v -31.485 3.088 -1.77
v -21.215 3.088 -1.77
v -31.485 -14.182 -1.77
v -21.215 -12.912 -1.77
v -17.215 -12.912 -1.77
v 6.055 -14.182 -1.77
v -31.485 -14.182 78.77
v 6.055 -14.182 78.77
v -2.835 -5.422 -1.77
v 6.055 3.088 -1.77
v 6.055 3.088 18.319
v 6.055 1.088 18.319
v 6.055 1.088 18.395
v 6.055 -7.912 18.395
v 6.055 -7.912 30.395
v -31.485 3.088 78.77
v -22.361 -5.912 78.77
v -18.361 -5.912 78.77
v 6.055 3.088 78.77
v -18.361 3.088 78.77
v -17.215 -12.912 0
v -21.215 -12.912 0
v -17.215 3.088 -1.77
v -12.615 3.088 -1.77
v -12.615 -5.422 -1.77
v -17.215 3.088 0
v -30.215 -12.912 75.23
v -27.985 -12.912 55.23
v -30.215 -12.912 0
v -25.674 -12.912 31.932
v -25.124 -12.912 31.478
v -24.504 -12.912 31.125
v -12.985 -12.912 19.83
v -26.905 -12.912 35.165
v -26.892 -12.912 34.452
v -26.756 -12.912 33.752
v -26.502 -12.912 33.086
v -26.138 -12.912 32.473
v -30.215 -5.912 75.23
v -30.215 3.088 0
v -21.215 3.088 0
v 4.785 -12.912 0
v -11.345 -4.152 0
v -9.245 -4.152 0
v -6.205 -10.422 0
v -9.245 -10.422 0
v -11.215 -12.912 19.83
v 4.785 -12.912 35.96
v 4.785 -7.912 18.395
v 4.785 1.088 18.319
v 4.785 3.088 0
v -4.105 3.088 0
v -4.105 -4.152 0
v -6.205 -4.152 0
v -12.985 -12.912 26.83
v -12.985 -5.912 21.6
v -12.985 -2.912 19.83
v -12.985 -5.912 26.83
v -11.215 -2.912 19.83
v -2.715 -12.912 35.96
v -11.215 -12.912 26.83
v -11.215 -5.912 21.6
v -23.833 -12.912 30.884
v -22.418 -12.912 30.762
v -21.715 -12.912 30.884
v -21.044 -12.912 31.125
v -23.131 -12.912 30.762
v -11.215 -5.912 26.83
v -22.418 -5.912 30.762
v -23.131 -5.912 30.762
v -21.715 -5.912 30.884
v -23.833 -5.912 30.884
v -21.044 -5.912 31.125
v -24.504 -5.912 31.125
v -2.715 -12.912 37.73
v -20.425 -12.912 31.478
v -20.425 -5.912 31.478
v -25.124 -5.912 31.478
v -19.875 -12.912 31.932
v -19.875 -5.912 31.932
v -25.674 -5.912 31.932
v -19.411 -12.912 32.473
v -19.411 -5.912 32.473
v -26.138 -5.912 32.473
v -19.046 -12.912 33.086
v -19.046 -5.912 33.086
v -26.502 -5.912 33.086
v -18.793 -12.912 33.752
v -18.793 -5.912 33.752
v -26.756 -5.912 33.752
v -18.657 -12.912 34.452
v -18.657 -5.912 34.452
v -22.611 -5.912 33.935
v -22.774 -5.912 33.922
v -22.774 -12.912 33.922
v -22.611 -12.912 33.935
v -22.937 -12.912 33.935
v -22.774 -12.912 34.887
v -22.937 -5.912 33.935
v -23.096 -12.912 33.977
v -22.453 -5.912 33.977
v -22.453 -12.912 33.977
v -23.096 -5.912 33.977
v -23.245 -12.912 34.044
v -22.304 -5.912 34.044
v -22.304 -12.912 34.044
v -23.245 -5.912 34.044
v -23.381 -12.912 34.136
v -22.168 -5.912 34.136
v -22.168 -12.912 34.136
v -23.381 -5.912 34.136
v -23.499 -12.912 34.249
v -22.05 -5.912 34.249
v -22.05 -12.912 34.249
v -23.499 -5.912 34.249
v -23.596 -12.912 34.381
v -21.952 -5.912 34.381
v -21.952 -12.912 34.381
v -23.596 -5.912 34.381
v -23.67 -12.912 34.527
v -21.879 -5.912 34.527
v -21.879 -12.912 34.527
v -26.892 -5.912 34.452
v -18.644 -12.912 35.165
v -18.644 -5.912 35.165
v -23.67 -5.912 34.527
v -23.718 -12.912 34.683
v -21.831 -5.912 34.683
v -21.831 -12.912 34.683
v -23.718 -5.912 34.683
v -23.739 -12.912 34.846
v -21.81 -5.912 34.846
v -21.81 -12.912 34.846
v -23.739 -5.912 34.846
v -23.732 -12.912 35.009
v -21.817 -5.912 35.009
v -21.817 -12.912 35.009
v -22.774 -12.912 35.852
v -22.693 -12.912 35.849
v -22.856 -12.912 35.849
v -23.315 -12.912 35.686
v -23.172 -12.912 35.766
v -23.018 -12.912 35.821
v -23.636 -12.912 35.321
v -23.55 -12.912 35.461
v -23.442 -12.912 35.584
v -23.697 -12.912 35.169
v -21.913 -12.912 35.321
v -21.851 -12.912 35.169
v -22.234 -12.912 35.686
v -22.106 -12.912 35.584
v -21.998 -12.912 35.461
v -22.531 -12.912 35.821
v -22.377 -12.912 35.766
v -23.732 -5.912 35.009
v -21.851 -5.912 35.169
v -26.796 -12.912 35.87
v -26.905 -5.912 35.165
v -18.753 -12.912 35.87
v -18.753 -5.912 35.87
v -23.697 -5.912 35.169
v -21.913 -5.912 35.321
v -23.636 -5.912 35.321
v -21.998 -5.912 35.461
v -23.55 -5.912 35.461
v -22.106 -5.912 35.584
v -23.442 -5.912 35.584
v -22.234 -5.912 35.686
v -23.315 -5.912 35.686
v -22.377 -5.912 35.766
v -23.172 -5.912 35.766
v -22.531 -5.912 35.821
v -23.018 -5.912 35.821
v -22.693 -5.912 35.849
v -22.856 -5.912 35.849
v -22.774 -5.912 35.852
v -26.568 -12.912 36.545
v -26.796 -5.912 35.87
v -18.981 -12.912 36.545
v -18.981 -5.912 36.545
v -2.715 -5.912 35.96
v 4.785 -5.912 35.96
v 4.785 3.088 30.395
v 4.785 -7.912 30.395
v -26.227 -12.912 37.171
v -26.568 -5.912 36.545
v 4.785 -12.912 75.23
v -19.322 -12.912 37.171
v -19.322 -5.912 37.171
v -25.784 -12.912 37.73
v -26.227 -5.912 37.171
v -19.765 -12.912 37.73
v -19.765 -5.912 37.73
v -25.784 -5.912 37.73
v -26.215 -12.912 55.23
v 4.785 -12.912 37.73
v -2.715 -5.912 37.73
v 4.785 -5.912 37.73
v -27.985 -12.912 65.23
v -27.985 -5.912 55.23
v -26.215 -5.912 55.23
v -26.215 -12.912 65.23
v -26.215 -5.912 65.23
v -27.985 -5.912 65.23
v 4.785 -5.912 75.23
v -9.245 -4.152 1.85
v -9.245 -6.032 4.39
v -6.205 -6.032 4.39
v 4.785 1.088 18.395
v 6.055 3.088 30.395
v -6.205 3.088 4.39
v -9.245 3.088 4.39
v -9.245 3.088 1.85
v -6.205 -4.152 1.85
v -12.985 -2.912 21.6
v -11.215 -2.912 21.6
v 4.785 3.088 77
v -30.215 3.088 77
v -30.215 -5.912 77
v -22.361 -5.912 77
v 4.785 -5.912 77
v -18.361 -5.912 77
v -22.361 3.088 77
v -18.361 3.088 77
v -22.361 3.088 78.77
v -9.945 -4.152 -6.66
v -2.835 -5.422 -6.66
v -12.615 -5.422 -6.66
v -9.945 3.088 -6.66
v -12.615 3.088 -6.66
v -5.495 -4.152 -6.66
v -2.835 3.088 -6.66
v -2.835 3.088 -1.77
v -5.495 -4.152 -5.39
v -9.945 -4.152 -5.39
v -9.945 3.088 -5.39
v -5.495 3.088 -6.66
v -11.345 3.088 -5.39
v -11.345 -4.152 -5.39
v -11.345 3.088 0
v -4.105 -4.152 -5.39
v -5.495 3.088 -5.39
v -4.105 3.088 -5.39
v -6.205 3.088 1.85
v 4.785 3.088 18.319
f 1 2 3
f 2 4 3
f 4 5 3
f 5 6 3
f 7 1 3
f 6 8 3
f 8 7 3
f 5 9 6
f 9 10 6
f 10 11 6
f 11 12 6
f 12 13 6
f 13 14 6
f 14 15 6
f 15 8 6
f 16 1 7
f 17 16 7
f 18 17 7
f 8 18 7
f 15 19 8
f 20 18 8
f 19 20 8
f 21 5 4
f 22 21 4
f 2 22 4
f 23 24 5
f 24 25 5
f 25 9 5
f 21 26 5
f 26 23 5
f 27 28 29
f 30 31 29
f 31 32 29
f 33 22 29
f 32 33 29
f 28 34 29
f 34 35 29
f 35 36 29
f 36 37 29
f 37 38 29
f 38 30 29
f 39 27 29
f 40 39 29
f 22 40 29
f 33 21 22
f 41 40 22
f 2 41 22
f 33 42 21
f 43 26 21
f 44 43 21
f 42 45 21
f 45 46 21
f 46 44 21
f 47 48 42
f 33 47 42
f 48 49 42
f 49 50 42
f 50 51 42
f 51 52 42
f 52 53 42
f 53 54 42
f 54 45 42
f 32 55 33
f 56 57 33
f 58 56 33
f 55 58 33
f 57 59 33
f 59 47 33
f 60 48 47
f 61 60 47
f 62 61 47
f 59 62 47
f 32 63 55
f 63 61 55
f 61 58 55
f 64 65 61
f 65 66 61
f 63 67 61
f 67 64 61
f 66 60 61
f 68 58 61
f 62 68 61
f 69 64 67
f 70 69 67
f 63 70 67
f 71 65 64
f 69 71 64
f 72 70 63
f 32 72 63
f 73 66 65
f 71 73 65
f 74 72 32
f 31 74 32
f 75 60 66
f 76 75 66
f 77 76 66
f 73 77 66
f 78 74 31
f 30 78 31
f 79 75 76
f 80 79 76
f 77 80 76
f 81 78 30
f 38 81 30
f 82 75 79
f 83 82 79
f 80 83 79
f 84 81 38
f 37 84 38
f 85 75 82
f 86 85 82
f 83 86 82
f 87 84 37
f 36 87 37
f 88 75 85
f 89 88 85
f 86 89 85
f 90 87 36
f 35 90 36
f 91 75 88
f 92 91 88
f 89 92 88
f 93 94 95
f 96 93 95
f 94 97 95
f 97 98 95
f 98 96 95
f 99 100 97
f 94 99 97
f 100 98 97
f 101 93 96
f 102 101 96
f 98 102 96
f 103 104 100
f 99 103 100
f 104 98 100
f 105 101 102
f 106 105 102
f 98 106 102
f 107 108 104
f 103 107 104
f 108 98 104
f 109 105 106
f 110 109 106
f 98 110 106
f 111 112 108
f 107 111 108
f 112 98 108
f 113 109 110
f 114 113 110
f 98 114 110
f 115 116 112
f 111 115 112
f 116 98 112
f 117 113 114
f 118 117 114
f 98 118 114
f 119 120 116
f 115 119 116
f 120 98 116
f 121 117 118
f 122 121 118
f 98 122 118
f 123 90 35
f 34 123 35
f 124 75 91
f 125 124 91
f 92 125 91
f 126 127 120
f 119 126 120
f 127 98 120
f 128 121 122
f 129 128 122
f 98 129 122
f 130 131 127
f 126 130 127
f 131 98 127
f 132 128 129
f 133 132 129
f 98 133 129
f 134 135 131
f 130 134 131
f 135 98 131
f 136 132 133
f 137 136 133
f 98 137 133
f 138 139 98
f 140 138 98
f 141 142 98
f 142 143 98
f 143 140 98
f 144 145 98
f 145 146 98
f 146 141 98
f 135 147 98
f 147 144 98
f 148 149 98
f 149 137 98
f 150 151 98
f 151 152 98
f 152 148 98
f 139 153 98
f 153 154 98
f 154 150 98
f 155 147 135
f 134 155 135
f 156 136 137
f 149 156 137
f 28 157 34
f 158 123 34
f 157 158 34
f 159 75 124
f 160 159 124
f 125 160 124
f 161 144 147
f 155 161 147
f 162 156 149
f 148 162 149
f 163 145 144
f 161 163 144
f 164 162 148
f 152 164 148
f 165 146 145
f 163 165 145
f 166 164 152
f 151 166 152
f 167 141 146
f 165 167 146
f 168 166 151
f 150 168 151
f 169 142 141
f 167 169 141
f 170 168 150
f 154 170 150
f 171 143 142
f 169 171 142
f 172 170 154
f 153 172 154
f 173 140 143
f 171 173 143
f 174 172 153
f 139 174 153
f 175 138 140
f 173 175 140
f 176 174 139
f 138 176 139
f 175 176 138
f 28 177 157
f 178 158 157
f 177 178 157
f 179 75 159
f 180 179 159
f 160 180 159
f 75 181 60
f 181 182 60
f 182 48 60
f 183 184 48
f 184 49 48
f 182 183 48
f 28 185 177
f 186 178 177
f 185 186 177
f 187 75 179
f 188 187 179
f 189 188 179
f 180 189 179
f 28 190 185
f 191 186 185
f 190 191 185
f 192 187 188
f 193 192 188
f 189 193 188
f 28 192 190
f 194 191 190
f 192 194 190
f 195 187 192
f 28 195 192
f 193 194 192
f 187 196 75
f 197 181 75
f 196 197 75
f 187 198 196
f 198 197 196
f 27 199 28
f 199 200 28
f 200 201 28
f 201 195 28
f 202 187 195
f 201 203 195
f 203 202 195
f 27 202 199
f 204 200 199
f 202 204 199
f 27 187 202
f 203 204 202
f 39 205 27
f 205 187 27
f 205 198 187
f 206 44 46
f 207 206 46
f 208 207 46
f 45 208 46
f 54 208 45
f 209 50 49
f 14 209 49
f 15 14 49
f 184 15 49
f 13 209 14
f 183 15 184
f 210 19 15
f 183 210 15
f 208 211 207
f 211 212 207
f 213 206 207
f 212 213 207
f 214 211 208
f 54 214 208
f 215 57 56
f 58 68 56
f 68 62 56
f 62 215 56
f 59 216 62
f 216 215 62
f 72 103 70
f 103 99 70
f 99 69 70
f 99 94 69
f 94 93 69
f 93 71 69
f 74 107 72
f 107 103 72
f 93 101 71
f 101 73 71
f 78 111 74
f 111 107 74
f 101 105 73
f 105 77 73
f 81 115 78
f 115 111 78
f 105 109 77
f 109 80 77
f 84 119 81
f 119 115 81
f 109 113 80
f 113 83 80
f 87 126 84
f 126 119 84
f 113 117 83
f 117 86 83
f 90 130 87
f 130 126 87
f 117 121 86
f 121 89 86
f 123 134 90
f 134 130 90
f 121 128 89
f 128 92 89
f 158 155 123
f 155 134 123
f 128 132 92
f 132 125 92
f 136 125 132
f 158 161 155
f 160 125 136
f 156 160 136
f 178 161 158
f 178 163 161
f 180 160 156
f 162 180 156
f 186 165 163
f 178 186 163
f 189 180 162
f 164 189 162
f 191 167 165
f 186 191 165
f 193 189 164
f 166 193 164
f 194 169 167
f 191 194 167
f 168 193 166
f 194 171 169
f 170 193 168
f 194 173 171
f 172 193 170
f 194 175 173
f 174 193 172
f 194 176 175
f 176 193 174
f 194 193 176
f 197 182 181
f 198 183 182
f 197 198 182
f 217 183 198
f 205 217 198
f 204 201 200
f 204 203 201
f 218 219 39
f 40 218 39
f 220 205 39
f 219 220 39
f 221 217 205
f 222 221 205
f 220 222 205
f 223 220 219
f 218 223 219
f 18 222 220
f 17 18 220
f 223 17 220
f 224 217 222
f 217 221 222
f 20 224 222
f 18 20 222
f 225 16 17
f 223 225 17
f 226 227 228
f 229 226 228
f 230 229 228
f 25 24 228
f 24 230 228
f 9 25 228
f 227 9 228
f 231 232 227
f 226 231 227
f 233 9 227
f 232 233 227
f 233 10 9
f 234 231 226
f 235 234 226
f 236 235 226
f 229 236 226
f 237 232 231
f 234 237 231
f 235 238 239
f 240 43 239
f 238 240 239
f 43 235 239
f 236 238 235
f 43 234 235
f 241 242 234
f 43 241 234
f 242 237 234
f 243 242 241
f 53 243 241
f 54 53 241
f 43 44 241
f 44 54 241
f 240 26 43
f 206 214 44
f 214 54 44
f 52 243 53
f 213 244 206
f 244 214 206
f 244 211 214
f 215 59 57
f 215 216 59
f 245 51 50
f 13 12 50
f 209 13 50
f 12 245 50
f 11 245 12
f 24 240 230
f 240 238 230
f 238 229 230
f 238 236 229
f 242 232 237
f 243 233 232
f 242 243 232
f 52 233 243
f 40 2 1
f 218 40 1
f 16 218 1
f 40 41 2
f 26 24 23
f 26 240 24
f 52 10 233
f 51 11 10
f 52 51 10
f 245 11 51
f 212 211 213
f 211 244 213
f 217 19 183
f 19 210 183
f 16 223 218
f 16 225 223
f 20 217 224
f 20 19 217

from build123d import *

# Parameters (mm, degrees)
BOSS_EXTRUDE1_DEPTH            = 77
SKETCH3_W                      = 37.54
SKETCH3_H                      = 17.27
BOSS_EXTRUDE2_DEPTH            = 1.77
SKETCH4_W                      = 37.54
SKETCH4_H                      = 17.27
BOSS_EXTRUDE3_DEPTH            = 1.77
SKETCH5_W                      = 4
SKETCH5_H                      = 16
CUT_EXTRUDE2_DEPTH             = 1.77
SKETCH6_W                      = 9.78
SKETCH6_H                      = 11.05
SKETCH6_W_2                    = 7.24
SKETCH6_H_2                    = 7.24
BUTTON_WALLS_DEPTH             = 7.24
SKETCH7_W                      = 9.78
SKETCH7_H                      = 11.05
BUTTON_BOTTOM_DEPTH            = 1.27
SKETCH8_W                      = 7.24
SKETCH8_H                      = 1.77
BUTTON_CUTOUT_MIDDLE_DEPTH     = 7.24
SKETCH9_W                      = 4.45
SKETCH9_H                      = 1.27
SKETCH9_W_2                    = 3.37
SKETCH9_H_2                    = 4.39
BUTTON_CUTOUT_FRONT_BACK_DEPTH = 7.24
SKETCH10_W                     = 3.37
SKETCH10_H                     = 4.39
BUTTON_CUTOUT_BOTTOM_DEPTH     = 1.27
BUTTON_CHAMFER1_SIZE           = 5
SKETCH12_W                     = 35
SKETCH12_H                     = 1.77
SKETCH12_W_2                   = 1.77
SKETCH12_H_2                   = 10
SKETCH12_W_3                   = 7.5
SKETCH12_R                     = 0.9652
SKETCH12_H_3                   = 7
SUPPORT_PCB_BATTERY_DEPTH      = 7
SKETCH13_W                     = 12
SKETCH13_H                     = 9
CUTOUT_USB_DEPTH               = 5
SKETCH14_W                     = 12.076722978
SKETCH14_H                     = 3.837896345
CUTOUT_TEMPORARY_DEPTH         = 5
SKETCH16_W                     = 1.77
SKETCH16_H                     = 1.77
TAB_PCB_RETAINER_DEPTH         = 3
SKETCH17_W                     = 4
SKETCH17_H                     = 1.77
CUTOUT_BACK_MOT_WIRES_DEPTH    = 9


with BuildPart() as part:
    # Sketch2 → Boss-Extrude1 (new body)
    with BuildSketch(Plane.XY):
        Polygon((-30.215355805, 3.088014981), (-30.215355805, -12.911985019), (4.784644195, -12.911985019), (4.784644195, 3.088014981), (6.054644195, 3.088014981), (6.054644195, -14.181985019), (-31.485355805, -14.181985019), (-31.485355805, 3.088014981), align=None)
    extrude(amount=BOSS_EXTRUDE1_DEPTH)

    # Sketch3 → Boss-Extrude2 (add)
    with BuildSketch(Plane.XY.offset(77)):
        with Locations((-12.715355805, -5.546985019)):
            Rectangle(SKETCH3_W, SKETCH3_H)
    extrude(amount=BOSS_EXTRUDE2_DEPTH)

    # Sketch4 → Boss-Extrude3 (add)
    with BuildSketch(Plane(origin=(0, 0, 0), x_dir=(-1, 0, 0), z_dir=(0, 0, -1))):
        with Locations((12.715355805, -5.546985019)):
            Rectangle(SKETCH4_W, SKETCH4_H)
    extrude(amount=BOSS_EXTRUDE3_DEPTH)

    # Sketch5 → Cut-Extrude2 (cut)
    with BuildSketch(Plane(origin=(0, 0, -1.77), x_dir=(-1, 0, 0), z_dir=(0, 0, -1))):
        with Locations((19.215355805, -4.911985019)):
            Rectangle(SKETCH5_W, SKETCH5_H)
    extrude(amount=-CUT_EXTRUDE2_DEPTH, mode=Mode.SUBTRACT)

    # Sketch6 → button_walls (add)
    with BuildSketch(Plane(origin=(0, 3.088014981, 0), x_dir=(1, 0, 0), z_dir=(0, 1, 0))):
        with Locations((-7.725355805, 1.135)):
            Rectangle(SKETCH6_W, SKETCH6_H)
        with Locations((-7.725355805, 1.77)):
            Rectangle(SKETCH6_W_2, SKETCH6_H_2, mode=Mode.SUBTRACT)
    extrude(amount=-BUTTON_WALLS_DEPTH)

    # Sketch7 → button_bottom (add)
    with BuildSketch(Plane.XZ.offset(4.151985019)):
        with Locations((-7.725355805, -1.135)):
            Rectangle(SKETCH7_W, SKETCH7_H)
    extrude(amount=BUTTON_BOTTOM_DEPTH)

    # Sketch8 → button_cutout_middle (cut)
    with BuildSketch(Plane(origin=(0, 3.088014981, 0), x_dir=(1, 0, 0), z_dir=(0, 1, 0))):
        with Locations((-7.725355805, 0.885)):
            Rectangle(SKETCH8_W, SKETCH8_H)
    extrude(amount=-BUTTON_CUTOUT_MIDDLE_DEPTH, mode=Mode.SUBTRACT)

    # Sketch9 → button_cutout_front_back (cut)
    with BuildSketch(Plane(origin=(0, 3.088014981, 0), x_dir=(1, 0, 0), z_dir=(0, 1, 0))):
        with Locations((-7.720355805, 6.025)):
            Rectangle(SKETCH9_W, SKETCH9_H)
        with Locations((-10.930355805, -2.195)):
            Rectangle(SKETCH9_W_2, SKETCH9_H_2)
        with Locations((-4.520355805, -2.195)):
            Rectangle(SKETCH9_W_2, SKETCH9_H_2)
    extrude(amount=-BUTTON_CUTOUT_FRONT_BACK_DEPTH, mode=Mode.SUBTRACT)

    # Sketch10 → button_cutout_bottom (cut)
    with BuildSketch(Plane(origin=(0, -4.151985019, 0), x_dir=(1, 0, 0), z_dir=(0, 1, 0))):
        with Locations((-10.930355805, -2.195)):
            Rectangle(SKETCH10_W, SKETCH10_H)
        with Locations((-4.520355805, -2.195)):
            Rectangle(SKETCH10_W, SKETCH10_H)
    extrude(amount=-BUTTON_CUTOUT_BOTTOM_DEPTH, mode=Mode.SUBTRACT)

    # button_Chamfer1
    # the kernel refuses this chamfer: 5 mm, written as the material it adds along each edge
    with BuildSketch(Plane(origin=(-6.205355805, -5.421985019, 0), x_dir=(0, -0.9996219169112968, -0.027495876610586372), z_dir=(-1, 0, 0))) as button_chamfer1_piece_1_section:
        Polygon((BUTTON_CHAMFER1_SIZE * 0.999621916911, BUTTON_CHAMFER1_SIZE * 0.0274958766106), (-BUTTON_CHAMFER1_SIZE * 0.0274958766106, BUTTON_CHAMFER1_SIZE * 0.999621916911), (0, 0), align=None)
    button_chamfer1_piece_1 = extrude(amount=3.04, mode=Mode.PRIVATE)
    button_chamfer1_piece_1 = split(button_chamfer1_piece_1, bisect_by=Plane(origin=(-7.725355805, -7.110612501, 4.39), z_dir=(0, 0, -1)), keep=Keep.TOP, mode=Mode.PRIVATE)
    add(button_chamfer1_piece_1)

    # Sketch12 → support_pcb_battery (add)
    # profile 1 of 5: a face of its own
    with BuildSketch(Plane(origin=(0, -12.911985019, 0), x_dir=(1, 0, 0), z_dir=(0, 1, 0))):
        with Locations((-12.715355805, -76.115)):
            Rectangle(SKETCH12_W, SKETCH12_H)
    # profile 2 of 5: a face of its own
    with BuildSketch(Plane(origin=(0, -12.911985019, 0), x_dir=(1, 0, 0), z_dir=(0, 1, 0))):
        with Locations((-27.100355805, -60.23)):
            Rectangle(SKETCH12_W_2, SKETCH12_H_2)
    # profile 3 of 5: a face of its own
    with BuildSketch(Plane(origin=(0, -12.911985019, 0), x_dir=(1, 0, 0), z_dir=(0, 1, 0))):
        with Locations((1.034644195, -36.845)):
            Rectangle(SKETCH12_W_3, SKETCH12_H)
    # profile 4 of 5: a face of its own
    with BuildSketch(Plane(origin=(0, -12.911985019, 0), x_dir=(1, 0, 0), z_dir=(0, 1, 0))):
        with BuildLine():
            Line((-25.783918863, -37.73), (-19.764792747, -37.73))
            ThreePointArc((-19.764792747, -37.73), (-22.774355805, -30.7466), (-25.783918863, -37.73))
        make_face()
        with Locations(Location((-22.774355805, -34.8868, 0), (0, 0, 270))):
            Circle(SKETCH12_R, mode=Mode.SUBTRACT)
    # profile 5 of 5: a face of its own
    with BuildSketch(Plane(origin=(0, -12.911985019, 0), x_dir=(1, 0, 0), z_dir=(0, 1, 0))):
        with Locations((-12.100355805, -23.33)):
            Rectangle(SKETCH12_W_2, SKETCH12_H_3)
    extrude(amount=SUPPORT_PCB_BATTERY_DEPTH)

    # Sketch13 → cutout_usb (cut)
    with BuildSketch(Plane(origin=(6.054644195, 0, 0), x_dir=(0, 0, -1), z_dir=(1, 0, 0))):
        with Locations((-24.395224713, -3.411985019)):
            Rectangle(SKETCH13_W, SKETCH13_H)
    extrude(amount=-CUTOUT_USB_DEPTH, mode=Mode.SUBTRACT)

    # Sketch14 → cutout_temporary (cut)
    with BuildSketch(Plane(origin=(6.054644195, 0, 0), x_dir=(0, 0, -1), z_dir=(1, 0, 0))):
        with Locations((-24.356863224, 3.006963154)):
            Rectangle(SKETCH14_W, SKETCH14_H)
    extrude(amount=-CUTOUT_TEMPORARY_DEPTH, mode=Mode.SUBTRACT)

    # Sketch16 → tab_pcb_retainer (add)
    with BuildSketch(Plane(origin=(0, -5.911985019, 0), x_dir=(1, 0, 0), z_dir=(0, 1, 0))):
        with Locations((-12.100355805, -20.715)):
            Rectangle(SKETCH16_W, SKETCH16_H)
    extrude(amount=TAB_PCB_RETAINER_DEPTH)

    # Sketch17 → cutout_back_mot_wires (cut)
    with BuildSketch(Plane(origin=(0, 3.088014981, 0), x_dir=(1, 0, 0), z_dir=(0, 1, 0))):
        with Locations((-20.361355805, -77.885)):
            Rectangle(SKETCH17_W, SKETCH17_H)
    extrude(amount=-CUTOUT_BACK_MOT_WIRES_DEPTH, mode=Mode.SUBTRACT)


solid = part.part
